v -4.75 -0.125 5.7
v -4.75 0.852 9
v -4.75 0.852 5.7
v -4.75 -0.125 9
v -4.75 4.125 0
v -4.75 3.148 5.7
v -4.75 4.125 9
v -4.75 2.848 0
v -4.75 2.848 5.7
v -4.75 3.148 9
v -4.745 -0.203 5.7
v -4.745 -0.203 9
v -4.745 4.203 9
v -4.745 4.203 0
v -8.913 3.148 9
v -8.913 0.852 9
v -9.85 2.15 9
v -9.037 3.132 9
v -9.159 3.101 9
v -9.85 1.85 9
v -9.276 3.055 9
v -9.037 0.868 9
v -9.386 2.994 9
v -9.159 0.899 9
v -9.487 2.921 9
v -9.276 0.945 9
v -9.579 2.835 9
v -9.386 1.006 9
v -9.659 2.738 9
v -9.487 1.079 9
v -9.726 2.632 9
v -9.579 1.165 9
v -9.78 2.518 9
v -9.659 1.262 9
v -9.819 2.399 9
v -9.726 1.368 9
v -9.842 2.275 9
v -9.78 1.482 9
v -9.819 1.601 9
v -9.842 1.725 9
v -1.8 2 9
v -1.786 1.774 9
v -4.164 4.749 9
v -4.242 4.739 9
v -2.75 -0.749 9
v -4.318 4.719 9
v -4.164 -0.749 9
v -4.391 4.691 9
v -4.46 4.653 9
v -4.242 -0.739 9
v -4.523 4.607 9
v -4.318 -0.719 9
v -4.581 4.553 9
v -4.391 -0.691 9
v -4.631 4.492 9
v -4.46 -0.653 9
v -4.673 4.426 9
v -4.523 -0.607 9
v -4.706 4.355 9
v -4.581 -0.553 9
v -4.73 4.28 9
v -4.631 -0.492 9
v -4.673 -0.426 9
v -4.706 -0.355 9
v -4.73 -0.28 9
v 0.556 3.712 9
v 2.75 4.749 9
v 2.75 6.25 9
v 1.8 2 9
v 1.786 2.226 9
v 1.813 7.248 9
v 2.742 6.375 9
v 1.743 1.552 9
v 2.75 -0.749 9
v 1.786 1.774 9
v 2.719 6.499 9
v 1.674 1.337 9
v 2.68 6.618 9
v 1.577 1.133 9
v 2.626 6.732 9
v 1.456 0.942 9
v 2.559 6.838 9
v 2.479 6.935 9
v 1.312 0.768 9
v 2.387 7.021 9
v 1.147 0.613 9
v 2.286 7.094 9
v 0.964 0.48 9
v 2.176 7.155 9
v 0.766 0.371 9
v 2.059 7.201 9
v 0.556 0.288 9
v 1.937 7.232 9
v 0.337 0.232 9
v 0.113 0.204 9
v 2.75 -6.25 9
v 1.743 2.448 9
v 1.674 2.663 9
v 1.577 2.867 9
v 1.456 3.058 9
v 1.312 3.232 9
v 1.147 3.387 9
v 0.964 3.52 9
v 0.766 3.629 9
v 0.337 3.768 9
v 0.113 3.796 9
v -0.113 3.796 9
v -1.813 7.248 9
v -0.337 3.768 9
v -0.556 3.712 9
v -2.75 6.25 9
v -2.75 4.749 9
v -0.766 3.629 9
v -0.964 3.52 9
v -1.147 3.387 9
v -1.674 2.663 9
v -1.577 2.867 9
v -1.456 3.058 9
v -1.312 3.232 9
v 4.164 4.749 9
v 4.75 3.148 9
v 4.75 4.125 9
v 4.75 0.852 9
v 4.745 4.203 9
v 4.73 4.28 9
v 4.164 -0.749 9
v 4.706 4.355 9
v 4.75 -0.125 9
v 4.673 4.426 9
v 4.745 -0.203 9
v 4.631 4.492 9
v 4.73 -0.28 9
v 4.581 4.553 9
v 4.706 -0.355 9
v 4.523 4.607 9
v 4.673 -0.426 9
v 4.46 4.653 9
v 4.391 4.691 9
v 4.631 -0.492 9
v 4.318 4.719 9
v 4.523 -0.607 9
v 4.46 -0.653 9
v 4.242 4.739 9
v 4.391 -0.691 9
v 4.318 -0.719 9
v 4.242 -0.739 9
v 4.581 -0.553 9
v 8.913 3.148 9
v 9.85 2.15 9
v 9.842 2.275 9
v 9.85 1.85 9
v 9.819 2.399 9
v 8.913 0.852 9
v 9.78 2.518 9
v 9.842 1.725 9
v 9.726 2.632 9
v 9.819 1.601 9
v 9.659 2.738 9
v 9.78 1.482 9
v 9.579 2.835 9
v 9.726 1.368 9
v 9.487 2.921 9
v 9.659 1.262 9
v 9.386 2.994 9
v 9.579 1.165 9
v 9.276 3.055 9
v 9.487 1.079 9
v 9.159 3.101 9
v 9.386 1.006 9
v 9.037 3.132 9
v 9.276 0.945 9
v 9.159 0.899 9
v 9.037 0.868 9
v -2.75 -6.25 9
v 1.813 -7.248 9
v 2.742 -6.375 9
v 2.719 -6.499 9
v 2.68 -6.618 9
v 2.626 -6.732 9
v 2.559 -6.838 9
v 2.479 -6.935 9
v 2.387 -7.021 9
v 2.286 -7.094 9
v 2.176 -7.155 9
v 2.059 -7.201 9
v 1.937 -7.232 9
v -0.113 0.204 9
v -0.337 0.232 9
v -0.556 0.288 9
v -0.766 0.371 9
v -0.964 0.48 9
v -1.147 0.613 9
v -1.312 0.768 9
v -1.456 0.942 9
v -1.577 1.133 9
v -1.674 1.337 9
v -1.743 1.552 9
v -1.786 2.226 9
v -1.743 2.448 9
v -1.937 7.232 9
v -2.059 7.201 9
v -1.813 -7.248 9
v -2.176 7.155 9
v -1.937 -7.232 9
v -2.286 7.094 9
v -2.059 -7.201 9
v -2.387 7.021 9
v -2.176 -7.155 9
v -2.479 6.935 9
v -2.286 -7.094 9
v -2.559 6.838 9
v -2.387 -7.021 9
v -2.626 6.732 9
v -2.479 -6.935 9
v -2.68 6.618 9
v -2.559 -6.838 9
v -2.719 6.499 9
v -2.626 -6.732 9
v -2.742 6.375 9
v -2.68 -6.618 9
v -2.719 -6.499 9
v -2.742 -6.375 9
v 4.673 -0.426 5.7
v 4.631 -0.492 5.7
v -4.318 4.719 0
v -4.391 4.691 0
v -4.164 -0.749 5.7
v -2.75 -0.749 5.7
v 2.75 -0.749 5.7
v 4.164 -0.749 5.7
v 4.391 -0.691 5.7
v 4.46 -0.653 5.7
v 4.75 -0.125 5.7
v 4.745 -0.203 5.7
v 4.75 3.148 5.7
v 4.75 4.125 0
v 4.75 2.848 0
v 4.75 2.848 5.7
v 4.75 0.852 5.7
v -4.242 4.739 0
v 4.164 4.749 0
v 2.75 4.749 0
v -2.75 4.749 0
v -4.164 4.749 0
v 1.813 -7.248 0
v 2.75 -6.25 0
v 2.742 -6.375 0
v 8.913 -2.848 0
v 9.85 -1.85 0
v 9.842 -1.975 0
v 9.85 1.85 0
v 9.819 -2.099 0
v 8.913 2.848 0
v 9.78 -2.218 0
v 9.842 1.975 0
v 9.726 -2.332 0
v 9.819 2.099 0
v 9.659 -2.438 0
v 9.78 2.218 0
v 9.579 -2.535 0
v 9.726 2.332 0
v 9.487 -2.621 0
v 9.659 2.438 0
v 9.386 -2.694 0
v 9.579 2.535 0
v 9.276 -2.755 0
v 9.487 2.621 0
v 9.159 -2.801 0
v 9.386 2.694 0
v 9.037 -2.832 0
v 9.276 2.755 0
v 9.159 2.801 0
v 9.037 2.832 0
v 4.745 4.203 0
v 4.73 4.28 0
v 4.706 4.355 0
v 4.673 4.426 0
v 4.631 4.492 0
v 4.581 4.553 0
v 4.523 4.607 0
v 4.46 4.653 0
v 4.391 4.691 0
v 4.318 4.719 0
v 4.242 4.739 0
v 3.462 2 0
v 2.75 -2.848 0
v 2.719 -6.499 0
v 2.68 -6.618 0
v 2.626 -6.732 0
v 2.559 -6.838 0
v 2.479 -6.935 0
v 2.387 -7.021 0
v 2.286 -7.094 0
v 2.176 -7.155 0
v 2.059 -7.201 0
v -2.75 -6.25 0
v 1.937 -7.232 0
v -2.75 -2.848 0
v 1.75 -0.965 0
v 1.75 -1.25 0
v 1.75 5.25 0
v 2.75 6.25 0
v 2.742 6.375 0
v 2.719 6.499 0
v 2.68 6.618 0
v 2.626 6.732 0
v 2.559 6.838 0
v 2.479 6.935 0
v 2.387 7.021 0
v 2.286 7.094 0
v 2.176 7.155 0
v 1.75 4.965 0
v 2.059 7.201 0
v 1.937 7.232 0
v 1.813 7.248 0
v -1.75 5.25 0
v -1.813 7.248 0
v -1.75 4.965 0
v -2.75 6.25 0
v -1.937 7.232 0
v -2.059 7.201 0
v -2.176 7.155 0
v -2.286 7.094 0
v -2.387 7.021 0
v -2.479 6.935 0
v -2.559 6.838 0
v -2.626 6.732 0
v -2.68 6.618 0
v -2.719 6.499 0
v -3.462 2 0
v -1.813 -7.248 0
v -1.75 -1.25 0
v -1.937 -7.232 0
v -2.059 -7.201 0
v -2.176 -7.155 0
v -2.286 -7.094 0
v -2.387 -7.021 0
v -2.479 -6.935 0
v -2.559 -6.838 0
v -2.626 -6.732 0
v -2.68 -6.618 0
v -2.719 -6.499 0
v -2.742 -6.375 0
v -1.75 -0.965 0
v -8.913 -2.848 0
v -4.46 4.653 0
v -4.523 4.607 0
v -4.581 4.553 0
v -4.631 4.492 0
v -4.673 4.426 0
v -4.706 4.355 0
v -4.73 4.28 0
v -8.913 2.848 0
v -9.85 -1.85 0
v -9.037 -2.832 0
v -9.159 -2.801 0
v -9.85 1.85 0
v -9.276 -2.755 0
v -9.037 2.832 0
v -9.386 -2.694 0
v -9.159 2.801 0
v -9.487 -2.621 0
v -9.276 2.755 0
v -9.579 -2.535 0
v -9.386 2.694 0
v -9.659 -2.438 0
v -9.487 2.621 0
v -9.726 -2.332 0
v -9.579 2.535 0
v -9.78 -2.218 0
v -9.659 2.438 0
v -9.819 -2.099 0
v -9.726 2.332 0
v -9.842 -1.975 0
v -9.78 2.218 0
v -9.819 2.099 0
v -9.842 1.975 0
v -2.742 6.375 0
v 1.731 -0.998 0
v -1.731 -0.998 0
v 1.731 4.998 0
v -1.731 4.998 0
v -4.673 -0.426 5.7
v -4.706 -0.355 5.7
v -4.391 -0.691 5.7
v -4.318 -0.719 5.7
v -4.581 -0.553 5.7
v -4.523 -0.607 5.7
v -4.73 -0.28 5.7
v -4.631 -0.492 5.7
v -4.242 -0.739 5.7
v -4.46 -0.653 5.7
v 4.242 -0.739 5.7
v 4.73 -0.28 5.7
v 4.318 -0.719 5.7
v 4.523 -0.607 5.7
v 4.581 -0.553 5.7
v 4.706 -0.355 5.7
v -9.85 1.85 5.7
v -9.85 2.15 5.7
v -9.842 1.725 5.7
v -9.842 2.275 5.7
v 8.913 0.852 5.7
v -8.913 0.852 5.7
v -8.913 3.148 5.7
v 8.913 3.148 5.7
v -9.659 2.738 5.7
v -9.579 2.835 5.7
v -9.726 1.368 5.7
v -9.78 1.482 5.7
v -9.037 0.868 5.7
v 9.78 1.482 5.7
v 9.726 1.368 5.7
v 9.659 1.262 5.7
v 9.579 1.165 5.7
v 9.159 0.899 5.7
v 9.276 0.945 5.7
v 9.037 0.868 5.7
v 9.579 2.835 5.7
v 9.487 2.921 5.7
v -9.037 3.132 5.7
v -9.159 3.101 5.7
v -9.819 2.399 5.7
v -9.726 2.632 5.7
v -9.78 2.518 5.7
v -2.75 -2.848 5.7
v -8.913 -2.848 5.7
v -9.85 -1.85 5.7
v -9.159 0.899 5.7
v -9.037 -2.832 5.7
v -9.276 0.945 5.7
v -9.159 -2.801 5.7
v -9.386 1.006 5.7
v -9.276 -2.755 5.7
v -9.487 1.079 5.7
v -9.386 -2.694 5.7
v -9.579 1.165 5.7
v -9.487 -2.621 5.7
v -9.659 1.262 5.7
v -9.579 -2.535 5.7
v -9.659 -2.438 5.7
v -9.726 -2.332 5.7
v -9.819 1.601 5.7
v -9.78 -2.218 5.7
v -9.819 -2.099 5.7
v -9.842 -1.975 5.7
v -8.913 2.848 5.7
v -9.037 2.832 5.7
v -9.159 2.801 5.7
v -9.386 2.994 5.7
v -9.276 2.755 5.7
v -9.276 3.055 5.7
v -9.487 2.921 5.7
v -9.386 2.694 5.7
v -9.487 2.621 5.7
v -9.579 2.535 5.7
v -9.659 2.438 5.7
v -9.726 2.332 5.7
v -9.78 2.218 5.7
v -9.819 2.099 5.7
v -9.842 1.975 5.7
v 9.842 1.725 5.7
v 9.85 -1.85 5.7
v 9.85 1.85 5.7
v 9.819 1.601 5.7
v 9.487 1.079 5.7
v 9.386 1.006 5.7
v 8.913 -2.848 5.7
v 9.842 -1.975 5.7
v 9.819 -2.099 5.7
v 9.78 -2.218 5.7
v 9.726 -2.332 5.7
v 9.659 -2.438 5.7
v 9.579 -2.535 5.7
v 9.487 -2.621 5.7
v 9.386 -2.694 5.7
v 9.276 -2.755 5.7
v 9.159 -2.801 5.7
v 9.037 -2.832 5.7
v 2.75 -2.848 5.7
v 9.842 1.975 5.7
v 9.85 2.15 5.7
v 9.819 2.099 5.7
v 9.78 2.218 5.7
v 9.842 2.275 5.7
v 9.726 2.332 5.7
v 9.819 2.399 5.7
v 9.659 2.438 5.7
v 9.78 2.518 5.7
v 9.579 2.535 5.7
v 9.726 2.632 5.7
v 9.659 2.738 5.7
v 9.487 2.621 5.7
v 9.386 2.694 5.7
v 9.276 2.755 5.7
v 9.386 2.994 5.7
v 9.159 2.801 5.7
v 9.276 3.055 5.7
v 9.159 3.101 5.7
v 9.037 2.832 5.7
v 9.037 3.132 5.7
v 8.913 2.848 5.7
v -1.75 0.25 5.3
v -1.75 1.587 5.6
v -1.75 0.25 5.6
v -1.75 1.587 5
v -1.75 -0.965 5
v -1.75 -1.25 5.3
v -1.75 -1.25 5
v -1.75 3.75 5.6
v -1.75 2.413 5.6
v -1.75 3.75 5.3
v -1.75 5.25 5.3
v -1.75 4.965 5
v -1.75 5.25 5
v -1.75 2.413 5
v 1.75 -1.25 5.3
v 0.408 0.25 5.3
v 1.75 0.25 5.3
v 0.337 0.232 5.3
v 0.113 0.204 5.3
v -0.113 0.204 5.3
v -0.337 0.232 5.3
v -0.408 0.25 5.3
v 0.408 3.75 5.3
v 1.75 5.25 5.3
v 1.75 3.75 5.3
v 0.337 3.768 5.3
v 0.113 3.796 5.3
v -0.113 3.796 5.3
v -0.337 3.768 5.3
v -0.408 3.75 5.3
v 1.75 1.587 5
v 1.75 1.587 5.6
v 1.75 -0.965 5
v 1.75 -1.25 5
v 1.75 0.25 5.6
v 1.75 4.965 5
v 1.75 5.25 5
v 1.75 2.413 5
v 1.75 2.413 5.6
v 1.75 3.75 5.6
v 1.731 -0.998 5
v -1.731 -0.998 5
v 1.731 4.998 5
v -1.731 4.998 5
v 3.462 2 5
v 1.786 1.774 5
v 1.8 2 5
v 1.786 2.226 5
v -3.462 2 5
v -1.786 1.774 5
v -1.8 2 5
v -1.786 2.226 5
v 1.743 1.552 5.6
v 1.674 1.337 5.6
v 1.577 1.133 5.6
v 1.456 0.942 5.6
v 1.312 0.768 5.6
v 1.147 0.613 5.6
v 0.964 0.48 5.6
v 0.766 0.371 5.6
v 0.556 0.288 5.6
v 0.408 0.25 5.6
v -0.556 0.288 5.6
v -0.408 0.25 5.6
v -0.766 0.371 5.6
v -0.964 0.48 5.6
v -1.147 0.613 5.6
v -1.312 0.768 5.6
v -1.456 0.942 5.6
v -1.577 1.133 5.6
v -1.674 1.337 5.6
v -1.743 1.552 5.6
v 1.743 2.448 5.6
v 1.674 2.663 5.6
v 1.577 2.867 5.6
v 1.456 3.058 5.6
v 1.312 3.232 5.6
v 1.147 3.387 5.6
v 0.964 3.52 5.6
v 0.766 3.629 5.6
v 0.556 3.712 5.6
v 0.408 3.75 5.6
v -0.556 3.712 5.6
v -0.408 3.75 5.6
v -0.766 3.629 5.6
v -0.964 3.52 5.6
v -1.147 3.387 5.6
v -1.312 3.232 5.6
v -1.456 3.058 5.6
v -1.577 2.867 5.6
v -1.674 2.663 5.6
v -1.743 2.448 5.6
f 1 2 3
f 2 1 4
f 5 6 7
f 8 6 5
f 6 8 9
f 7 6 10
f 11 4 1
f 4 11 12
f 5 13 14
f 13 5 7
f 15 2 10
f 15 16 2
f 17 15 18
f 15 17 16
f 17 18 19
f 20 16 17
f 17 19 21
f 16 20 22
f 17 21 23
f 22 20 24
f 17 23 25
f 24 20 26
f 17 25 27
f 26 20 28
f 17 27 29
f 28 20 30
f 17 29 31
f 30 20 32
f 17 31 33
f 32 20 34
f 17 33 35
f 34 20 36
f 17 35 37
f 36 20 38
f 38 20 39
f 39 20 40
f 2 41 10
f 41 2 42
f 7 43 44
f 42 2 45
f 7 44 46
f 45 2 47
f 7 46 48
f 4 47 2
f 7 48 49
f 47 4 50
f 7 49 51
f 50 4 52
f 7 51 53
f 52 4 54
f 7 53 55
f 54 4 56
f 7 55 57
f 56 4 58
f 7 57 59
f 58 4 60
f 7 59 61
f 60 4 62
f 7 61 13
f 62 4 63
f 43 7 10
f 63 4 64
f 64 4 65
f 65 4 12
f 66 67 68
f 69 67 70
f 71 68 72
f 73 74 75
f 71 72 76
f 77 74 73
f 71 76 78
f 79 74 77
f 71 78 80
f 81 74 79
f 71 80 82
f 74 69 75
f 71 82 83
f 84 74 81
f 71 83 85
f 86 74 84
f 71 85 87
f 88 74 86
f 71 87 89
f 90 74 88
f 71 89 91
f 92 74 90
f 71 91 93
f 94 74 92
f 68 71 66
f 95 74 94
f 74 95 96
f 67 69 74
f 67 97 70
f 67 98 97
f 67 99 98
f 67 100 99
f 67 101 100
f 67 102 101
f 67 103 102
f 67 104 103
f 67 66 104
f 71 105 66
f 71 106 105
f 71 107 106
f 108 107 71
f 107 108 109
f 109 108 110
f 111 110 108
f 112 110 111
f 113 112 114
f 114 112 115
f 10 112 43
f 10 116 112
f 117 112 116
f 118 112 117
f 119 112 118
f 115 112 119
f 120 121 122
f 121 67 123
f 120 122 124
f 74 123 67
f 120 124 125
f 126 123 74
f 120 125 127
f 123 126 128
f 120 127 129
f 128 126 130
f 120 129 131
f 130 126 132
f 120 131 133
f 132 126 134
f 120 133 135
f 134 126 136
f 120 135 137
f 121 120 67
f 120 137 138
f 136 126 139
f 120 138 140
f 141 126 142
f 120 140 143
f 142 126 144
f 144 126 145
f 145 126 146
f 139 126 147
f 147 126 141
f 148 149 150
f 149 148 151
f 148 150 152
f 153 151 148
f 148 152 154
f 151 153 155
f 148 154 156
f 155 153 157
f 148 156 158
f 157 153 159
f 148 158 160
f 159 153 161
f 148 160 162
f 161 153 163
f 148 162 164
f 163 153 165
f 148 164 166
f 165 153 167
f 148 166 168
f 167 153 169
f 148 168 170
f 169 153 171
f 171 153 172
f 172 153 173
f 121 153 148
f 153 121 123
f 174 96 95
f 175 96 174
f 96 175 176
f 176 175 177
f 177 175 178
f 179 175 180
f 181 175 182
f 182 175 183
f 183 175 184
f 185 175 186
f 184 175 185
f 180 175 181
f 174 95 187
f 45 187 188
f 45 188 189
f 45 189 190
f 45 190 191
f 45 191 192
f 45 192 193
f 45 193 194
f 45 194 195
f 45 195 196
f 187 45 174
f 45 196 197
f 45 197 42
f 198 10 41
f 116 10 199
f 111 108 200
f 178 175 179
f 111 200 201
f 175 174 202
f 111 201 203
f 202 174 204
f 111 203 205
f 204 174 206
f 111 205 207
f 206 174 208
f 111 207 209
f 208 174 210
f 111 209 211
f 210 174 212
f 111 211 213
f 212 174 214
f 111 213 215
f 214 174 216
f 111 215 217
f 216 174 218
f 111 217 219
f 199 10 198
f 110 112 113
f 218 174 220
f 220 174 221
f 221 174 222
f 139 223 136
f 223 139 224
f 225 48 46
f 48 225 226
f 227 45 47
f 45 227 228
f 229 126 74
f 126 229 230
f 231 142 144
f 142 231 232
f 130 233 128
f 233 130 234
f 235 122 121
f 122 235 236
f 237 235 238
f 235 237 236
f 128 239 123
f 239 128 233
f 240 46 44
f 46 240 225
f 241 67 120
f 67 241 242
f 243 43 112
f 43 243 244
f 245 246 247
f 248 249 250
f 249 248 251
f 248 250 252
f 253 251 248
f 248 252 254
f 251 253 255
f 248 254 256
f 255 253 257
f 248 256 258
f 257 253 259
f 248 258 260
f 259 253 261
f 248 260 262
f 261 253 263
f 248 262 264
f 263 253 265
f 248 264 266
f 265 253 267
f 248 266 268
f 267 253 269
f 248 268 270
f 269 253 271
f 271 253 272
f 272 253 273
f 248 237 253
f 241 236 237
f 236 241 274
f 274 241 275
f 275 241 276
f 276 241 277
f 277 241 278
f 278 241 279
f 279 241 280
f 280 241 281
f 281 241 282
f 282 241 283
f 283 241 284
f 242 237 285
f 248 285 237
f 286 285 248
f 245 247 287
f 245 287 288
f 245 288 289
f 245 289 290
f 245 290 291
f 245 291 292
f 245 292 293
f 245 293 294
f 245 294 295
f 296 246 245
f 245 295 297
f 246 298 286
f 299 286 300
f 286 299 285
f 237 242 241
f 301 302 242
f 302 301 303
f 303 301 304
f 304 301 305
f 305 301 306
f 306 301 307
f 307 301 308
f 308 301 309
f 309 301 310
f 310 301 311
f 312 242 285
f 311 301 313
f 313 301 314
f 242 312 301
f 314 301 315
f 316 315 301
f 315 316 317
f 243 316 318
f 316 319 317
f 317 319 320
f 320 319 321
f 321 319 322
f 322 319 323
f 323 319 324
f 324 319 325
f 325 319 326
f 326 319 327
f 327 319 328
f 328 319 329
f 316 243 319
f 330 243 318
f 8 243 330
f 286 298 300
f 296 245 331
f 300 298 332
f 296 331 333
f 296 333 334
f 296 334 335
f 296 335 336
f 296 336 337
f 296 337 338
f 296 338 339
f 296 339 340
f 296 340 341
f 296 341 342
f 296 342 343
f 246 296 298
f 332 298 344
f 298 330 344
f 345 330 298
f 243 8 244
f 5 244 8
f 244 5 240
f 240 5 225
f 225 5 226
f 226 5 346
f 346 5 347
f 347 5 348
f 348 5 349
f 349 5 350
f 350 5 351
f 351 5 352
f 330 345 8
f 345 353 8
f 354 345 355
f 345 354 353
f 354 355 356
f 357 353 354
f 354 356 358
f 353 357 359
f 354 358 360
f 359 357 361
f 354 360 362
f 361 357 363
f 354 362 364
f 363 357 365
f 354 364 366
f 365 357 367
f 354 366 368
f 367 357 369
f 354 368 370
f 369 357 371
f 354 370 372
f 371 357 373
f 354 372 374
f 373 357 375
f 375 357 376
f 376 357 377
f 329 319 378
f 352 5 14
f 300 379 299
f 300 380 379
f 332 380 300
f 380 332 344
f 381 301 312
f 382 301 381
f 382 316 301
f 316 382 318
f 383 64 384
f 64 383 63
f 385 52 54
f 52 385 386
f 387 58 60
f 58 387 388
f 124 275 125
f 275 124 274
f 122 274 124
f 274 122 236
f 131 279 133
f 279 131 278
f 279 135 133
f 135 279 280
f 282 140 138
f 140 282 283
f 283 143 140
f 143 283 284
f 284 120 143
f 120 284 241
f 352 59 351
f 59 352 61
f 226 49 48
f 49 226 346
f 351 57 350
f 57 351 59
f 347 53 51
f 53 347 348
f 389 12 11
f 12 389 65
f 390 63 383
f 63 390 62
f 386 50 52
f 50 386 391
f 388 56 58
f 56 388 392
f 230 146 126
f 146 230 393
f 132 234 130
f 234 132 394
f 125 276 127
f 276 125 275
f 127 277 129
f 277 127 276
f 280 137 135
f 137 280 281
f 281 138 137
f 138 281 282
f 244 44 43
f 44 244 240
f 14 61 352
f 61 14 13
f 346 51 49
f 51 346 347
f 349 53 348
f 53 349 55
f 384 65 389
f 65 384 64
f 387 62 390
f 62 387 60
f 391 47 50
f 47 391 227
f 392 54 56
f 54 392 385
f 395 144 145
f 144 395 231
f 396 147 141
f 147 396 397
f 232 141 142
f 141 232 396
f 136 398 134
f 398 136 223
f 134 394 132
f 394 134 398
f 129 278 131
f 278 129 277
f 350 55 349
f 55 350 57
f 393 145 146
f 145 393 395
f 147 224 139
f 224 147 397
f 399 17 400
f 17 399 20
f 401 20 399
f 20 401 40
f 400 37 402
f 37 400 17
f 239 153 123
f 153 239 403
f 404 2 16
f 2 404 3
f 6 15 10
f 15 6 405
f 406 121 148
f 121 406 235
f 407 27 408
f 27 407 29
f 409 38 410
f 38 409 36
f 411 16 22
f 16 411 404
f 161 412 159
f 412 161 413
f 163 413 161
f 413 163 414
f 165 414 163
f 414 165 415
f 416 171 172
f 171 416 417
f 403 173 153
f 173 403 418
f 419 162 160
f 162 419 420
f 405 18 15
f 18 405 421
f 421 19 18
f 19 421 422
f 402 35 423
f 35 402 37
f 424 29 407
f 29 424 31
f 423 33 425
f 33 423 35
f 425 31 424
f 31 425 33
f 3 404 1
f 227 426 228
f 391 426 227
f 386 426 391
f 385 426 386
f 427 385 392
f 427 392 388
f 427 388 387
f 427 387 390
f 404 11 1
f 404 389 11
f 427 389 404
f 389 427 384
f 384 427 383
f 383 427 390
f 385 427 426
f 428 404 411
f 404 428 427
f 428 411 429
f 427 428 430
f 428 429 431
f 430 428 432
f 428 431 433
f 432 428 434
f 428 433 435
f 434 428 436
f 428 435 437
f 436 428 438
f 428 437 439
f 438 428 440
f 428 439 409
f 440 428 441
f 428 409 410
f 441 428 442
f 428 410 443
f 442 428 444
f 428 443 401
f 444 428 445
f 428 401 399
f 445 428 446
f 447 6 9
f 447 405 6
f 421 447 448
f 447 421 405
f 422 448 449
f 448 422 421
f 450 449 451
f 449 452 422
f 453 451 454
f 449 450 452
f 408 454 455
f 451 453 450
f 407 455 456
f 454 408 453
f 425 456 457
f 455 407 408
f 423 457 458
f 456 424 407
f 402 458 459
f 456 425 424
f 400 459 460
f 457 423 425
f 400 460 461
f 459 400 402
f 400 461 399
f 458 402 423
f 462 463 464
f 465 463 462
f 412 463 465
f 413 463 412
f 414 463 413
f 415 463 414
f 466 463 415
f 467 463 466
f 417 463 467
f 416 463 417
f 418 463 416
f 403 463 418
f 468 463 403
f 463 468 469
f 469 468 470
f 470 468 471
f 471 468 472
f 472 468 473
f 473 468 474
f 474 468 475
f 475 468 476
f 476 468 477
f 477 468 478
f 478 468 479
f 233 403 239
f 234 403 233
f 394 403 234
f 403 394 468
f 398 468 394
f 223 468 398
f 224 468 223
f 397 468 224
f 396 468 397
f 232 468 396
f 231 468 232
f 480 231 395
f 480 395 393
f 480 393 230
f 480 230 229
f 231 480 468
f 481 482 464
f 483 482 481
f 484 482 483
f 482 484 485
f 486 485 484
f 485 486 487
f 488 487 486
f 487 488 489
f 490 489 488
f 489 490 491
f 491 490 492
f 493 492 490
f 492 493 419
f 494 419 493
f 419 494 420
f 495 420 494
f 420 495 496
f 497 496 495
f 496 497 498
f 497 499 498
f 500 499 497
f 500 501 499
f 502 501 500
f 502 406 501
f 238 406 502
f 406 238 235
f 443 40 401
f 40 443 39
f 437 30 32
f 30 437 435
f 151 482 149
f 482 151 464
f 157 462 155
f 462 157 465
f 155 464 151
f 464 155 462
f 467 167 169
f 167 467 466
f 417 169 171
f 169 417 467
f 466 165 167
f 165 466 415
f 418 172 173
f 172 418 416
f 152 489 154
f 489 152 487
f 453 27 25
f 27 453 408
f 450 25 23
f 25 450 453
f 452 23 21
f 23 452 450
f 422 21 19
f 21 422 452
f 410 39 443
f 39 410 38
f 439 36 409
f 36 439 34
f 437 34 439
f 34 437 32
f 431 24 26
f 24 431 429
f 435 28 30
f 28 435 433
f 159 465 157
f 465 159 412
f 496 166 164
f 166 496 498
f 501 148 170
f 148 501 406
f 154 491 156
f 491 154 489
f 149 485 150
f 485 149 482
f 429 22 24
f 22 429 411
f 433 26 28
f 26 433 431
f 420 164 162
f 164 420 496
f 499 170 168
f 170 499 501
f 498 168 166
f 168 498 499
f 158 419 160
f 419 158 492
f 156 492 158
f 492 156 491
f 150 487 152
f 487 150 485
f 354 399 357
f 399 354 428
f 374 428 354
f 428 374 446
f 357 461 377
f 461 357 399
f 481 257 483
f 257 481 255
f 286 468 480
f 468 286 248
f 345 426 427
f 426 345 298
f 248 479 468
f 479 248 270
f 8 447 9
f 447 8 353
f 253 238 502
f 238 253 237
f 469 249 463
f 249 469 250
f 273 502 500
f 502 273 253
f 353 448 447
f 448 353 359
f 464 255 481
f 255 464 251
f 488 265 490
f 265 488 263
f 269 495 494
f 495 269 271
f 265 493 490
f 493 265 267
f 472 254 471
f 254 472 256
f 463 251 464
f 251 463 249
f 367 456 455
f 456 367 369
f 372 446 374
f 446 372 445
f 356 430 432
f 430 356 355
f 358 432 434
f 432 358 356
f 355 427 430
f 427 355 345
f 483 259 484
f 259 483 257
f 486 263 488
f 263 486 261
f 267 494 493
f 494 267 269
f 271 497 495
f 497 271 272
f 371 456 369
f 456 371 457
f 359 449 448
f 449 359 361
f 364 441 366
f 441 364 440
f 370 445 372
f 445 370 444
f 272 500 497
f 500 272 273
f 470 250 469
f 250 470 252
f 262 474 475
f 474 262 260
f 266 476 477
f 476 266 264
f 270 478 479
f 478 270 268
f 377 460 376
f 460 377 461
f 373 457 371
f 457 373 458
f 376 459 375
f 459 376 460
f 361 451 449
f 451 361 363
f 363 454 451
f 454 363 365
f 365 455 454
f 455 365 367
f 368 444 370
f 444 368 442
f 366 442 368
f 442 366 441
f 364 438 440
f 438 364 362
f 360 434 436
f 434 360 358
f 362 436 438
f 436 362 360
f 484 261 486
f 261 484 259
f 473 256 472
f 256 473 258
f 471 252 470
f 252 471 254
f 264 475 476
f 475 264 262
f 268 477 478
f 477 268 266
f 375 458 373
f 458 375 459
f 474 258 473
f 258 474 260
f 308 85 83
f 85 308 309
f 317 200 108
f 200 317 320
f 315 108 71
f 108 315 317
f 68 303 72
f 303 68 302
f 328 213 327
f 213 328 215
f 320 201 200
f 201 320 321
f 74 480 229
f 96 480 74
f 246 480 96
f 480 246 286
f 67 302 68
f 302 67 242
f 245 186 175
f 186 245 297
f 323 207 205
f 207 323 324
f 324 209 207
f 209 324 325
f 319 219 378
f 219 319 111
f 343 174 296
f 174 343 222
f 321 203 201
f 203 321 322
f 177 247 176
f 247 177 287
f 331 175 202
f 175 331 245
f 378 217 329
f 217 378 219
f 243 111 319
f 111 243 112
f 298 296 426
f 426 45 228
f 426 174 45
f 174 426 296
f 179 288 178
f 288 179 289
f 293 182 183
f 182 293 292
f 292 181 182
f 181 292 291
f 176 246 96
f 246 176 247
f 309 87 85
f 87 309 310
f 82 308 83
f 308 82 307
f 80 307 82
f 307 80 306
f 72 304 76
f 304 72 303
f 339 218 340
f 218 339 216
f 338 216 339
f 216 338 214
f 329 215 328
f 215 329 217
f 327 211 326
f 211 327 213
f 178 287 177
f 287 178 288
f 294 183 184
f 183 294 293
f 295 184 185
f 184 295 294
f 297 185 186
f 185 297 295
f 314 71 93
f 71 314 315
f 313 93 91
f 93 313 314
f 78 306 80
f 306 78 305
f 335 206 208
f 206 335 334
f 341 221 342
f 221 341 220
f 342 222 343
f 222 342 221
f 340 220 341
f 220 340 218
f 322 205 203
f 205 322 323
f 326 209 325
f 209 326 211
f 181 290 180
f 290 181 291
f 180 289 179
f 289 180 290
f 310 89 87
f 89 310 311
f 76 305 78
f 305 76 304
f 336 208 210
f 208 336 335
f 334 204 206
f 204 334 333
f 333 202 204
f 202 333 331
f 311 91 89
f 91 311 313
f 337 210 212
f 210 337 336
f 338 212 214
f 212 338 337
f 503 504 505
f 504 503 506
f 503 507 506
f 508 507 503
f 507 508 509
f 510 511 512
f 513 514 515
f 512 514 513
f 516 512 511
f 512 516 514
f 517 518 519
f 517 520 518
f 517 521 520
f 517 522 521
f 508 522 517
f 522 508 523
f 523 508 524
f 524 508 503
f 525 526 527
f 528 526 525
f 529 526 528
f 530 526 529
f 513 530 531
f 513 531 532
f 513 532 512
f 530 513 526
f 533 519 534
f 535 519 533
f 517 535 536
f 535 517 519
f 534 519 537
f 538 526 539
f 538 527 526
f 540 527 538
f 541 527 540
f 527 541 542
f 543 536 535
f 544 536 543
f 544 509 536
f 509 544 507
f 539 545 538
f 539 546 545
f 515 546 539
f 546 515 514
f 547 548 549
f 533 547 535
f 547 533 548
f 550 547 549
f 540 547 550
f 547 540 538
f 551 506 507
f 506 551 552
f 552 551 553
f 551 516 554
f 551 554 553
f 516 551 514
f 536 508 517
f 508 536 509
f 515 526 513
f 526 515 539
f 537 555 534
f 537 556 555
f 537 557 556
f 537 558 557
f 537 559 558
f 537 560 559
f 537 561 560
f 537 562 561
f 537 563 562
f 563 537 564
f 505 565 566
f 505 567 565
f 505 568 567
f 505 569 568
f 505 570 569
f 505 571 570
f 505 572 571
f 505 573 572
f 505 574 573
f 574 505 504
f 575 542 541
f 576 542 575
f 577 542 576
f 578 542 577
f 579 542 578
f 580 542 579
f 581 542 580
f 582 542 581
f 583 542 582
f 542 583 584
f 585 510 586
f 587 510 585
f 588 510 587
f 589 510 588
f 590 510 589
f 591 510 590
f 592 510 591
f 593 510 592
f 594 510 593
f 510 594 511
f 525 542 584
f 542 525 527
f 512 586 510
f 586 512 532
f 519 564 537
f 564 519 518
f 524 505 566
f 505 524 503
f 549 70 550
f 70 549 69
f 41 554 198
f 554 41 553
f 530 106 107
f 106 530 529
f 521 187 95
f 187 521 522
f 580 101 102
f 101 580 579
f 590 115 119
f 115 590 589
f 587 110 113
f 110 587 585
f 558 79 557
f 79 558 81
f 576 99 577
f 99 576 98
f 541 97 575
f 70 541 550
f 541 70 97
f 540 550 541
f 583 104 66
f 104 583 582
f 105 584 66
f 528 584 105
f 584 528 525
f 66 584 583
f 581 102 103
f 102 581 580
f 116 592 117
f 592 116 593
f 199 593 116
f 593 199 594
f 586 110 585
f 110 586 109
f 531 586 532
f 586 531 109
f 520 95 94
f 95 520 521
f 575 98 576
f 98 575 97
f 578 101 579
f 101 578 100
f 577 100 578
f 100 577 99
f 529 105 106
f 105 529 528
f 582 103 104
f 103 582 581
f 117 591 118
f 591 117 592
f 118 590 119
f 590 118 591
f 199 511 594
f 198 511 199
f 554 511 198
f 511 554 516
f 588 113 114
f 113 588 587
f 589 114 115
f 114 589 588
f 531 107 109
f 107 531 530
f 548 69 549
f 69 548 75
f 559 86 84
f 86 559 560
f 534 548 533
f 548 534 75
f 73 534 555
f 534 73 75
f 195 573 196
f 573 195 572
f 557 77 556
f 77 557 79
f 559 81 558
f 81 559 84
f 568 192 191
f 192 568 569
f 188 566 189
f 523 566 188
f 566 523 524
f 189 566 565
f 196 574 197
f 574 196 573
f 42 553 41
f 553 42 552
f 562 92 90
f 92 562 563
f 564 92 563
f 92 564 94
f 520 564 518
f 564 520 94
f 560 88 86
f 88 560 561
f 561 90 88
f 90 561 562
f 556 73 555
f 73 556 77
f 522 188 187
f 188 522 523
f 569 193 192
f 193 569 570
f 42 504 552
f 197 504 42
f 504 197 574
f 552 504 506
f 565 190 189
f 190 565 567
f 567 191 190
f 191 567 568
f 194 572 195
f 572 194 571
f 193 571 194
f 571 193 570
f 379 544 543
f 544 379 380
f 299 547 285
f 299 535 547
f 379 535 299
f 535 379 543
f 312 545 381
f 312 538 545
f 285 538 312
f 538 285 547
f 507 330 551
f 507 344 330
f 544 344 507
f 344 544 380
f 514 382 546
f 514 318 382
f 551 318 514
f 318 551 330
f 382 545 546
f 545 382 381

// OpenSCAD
$fn = 50;


difference() {
	union() {
		translate(v = [0, 2.0000000000, 0]) {
			hull() {
				translate(v = [-4.1250000000, 2.1250000000, 0]) {
					cylinder(h = 9, r = 0.6250000000);
				}
				translate(v = [4.1250000000, 2.1250000000, 0]) {
					cylinder(h = 9, r = 0.6250000000);
				}
				translate(v = [-4.1250000000, -2.1250000000, 0]) {
					cylinder(h = 9, r = 0.6250000000);
				}
				translate(v = [4.1250000000, -2.1250000000, 0]) {
					cylinder(h = 9, r = 0.6250000000);
				}
			}
		}
		translate(v = [0, 2.0000000000, 5.7000000000]) {
			hull() {
				translate(v = [-8.8500000000, -0.1500000000, 0]) {
					cylinder(h = 3.3000000000, r = 1);
				}
				translate(v = [8.8500000000, -0.1500000000, 0]) {
					cylinder(h = 3.3000000000, r = 1);
				}
				translate(v = [-8.8500000000, 0.1500000000, 0]) {
					cylinder(h = 3.3000000000, r = 1);
				}
				translate(v = [8.8500000000, 0.1500000000, 0]) {
					cylinder(h = 3.3000000000, r = 1);
				}
			}
		}
		hull() {
			translate(v = [-8.8500000000, 1.8500000000, 0]) {
				cylinder(h = 5.7000000000, r = 1);
			}
			translate(v = [8.8500000000, 1.8500000000, 0]) {
				cylinder(h = 5.7000000000, r = 1);
			}
			translate(v = [-8.8500000000, -1.8500000000, 0]) {
				cylinder(h = 5.7000000000, r = 1);
			}
			translate(v = [8.8500000000, -1.8500000000, 0]) {
				cylinder(h = 5.7000000000, r = 1);
			}
		}
		translate(v = [0, 0, 6]) {
			hull() {
				translate(v = [-1.7500000000, 6.2500000000, 0]) {
					cylinder(h = 3, r = 1);
				}
				translate(v = [1.7500000000, 6.2500000000, 0]) {
					cylinder(h = 3, r = 1);
				}
				translate(v = [-1.7500000000, -6.2500000000, 0]) {
					cylinder(h = 3, r = 1);
				}
				translate(v = [1.7500000000, -6.2500000000, 0]) {
					cylinder(h = 3, r = 1);
				}
			}
		}
		hull() {
			translate(v = [-1.7500000000, 6.2500000000, 0]) {
				cylinder(h = 6, r = 1);
			}
			translate(v = [1.7500000000, 6.2500000000, 0]) {
				cylinder(h = 6, r = 1);
			}
			translate(v = [-1.7500000000, -6.2500000000, 0]) {
				cylinder(h = 6, r = 1);
			}
			translate(v = [1.7500000000, -6.2500000000, 0]) {
				cylinder(h = 6, r = 1);
			}
		}
	}
	union() {
		translate(v = [0, 2.0000000000, 0]) {
			rotate(a = [0, 0, 0]) {
				difference() {
					union() {
						#translate(v = [-1.7500000000, -3.2500000000, -0.3000000000]) {
							cube(size = [3.5000000000, 6.5000000000, 0.3000000000]);
						}
						#translate(v = [-1.7500000000, -1.7500000000, -0.6000000000]) {
							cube(size = [3.5000000000, 3.5000000000, 0.3000000000]);
						}
						#translate(v = [-1.7500000000, -3.2500000000, 5]) {
							cube(size = [3.5000000000, 6.5000000000, 0.3000000000]);
						}
						#translate(v = [-1.7500000000, -1.7500000000, 5.3000000000]) {
							cube(size = [3.5000000000, 3.5000000000, 0.3000000000]);
						}
						#translate(v = [0, 0, -100.0000000000]) {
							cylinder(h = 200, r = 1.8000000000);
						}
						#linear_extrude(height = 5) {
							polygon(points = [[3.4620000000, 0.0000000000], [1.7310000000, 2.9981799479], [-1.7310000000, 2.9981799479], [-3.4620000000, 0.0000000000], [-1.7310000000, -2.9981799479], [1.7310000000, -2.9981799479]]);
						}
						#translate(v = [-1.7500000000, -3.2500000000, -0.3000000000]) {
							cube(size = [3.5000000000, 6.5000000000, 0.3000000000]);
						}
						#translate(v = [-1.7500000000, -1.7500000000, -0.6000000000]) {
							cube(size = [3.5000000000, 3.5000000000, 0.3000000000]);
						}
						#translate(v = [-1.7500000000, -3.2500000000, 5]) {
							cube(size = [3.5000000000, 6.5000000000, 0.3000000000]);
						}
						#translate(v = [-1.7500000000, -1.7500000000, 5.3000000000]) {
							cube(size = [3.5000000000, 3.5000000000, 0.3000000000]);
						}
						#translate(v = [0, 0, -100.0000000000]) {
							cylinder(h = 200, r = 1.8000000000);
						}
						#translate(v = [-1.7500000000, -3.2500000000, -0.3000000000]) {
							cube(size = [3.5000000000, 6.5000000000, 0.3000000000]);
						}
						#translate(v = [-1.7500000000, -1.7500000000, -0.6000000000]) {
							cube(size = [3.5000000000, 3.5000000000, 0.3000000000]);
						}
						#translate(v = [-1.7500000000, -3.2500000000, 5]) {
							cube(size = [3.5000000000, 6.5000000000, 0.3000000000]);
						}
						#translate(v = [-1.7500000000, -1.7500000000, 5.3000000000]) {
							cube(size = [3.5000000000, 3.5000000000, 0.3000000000]);
						}
						#translate(v = [0, 0, -100.0000000000]) {
							cylinder(h = 200, r = 1.8000000000);
						}
					}
					union();
				}
			}
		}
	}
}
